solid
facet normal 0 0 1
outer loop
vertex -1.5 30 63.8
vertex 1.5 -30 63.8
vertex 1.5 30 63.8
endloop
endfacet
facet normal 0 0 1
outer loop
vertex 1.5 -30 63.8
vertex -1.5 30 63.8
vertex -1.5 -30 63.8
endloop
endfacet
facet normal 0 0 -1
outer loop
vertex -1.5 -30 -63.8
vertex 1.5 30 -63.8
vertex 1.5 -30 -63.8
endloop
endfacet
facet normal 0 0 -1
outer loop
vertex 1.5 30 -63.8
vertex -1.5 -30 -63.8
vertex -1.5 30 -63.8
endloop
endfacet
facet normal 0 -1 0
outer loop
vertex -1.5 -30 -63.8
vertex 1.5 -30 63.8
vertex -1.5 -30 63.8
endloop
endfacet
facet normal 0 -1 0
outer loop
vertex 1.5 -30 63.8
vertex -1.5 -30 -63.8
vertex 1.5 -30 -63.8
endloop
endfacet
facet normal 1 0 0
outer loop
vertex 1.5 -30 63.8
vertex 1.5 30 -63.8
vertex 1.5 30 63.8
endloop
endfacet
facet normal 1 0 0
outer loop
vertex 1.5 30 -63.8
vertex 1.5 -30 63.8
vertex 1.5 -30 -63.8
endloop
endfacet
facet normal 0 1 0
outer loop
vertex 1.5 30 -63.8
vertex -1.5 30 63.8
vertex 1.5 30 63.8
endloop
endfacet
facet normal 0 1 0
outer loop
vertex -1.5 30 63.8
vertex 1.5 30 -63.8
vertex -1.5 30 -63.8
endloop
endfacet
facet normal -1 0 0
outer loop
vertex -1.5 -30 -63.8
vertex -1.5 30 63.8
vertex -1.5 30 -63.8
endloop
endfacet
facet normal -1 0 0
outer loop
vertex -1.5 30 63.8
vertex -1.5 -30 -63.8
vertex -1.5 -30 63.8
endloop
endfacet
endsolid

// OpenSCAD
$fa=5;$fs=0.1;


cube(center = true, size = [3.0000000000, 60.0000000000, 127.6000000000]);
